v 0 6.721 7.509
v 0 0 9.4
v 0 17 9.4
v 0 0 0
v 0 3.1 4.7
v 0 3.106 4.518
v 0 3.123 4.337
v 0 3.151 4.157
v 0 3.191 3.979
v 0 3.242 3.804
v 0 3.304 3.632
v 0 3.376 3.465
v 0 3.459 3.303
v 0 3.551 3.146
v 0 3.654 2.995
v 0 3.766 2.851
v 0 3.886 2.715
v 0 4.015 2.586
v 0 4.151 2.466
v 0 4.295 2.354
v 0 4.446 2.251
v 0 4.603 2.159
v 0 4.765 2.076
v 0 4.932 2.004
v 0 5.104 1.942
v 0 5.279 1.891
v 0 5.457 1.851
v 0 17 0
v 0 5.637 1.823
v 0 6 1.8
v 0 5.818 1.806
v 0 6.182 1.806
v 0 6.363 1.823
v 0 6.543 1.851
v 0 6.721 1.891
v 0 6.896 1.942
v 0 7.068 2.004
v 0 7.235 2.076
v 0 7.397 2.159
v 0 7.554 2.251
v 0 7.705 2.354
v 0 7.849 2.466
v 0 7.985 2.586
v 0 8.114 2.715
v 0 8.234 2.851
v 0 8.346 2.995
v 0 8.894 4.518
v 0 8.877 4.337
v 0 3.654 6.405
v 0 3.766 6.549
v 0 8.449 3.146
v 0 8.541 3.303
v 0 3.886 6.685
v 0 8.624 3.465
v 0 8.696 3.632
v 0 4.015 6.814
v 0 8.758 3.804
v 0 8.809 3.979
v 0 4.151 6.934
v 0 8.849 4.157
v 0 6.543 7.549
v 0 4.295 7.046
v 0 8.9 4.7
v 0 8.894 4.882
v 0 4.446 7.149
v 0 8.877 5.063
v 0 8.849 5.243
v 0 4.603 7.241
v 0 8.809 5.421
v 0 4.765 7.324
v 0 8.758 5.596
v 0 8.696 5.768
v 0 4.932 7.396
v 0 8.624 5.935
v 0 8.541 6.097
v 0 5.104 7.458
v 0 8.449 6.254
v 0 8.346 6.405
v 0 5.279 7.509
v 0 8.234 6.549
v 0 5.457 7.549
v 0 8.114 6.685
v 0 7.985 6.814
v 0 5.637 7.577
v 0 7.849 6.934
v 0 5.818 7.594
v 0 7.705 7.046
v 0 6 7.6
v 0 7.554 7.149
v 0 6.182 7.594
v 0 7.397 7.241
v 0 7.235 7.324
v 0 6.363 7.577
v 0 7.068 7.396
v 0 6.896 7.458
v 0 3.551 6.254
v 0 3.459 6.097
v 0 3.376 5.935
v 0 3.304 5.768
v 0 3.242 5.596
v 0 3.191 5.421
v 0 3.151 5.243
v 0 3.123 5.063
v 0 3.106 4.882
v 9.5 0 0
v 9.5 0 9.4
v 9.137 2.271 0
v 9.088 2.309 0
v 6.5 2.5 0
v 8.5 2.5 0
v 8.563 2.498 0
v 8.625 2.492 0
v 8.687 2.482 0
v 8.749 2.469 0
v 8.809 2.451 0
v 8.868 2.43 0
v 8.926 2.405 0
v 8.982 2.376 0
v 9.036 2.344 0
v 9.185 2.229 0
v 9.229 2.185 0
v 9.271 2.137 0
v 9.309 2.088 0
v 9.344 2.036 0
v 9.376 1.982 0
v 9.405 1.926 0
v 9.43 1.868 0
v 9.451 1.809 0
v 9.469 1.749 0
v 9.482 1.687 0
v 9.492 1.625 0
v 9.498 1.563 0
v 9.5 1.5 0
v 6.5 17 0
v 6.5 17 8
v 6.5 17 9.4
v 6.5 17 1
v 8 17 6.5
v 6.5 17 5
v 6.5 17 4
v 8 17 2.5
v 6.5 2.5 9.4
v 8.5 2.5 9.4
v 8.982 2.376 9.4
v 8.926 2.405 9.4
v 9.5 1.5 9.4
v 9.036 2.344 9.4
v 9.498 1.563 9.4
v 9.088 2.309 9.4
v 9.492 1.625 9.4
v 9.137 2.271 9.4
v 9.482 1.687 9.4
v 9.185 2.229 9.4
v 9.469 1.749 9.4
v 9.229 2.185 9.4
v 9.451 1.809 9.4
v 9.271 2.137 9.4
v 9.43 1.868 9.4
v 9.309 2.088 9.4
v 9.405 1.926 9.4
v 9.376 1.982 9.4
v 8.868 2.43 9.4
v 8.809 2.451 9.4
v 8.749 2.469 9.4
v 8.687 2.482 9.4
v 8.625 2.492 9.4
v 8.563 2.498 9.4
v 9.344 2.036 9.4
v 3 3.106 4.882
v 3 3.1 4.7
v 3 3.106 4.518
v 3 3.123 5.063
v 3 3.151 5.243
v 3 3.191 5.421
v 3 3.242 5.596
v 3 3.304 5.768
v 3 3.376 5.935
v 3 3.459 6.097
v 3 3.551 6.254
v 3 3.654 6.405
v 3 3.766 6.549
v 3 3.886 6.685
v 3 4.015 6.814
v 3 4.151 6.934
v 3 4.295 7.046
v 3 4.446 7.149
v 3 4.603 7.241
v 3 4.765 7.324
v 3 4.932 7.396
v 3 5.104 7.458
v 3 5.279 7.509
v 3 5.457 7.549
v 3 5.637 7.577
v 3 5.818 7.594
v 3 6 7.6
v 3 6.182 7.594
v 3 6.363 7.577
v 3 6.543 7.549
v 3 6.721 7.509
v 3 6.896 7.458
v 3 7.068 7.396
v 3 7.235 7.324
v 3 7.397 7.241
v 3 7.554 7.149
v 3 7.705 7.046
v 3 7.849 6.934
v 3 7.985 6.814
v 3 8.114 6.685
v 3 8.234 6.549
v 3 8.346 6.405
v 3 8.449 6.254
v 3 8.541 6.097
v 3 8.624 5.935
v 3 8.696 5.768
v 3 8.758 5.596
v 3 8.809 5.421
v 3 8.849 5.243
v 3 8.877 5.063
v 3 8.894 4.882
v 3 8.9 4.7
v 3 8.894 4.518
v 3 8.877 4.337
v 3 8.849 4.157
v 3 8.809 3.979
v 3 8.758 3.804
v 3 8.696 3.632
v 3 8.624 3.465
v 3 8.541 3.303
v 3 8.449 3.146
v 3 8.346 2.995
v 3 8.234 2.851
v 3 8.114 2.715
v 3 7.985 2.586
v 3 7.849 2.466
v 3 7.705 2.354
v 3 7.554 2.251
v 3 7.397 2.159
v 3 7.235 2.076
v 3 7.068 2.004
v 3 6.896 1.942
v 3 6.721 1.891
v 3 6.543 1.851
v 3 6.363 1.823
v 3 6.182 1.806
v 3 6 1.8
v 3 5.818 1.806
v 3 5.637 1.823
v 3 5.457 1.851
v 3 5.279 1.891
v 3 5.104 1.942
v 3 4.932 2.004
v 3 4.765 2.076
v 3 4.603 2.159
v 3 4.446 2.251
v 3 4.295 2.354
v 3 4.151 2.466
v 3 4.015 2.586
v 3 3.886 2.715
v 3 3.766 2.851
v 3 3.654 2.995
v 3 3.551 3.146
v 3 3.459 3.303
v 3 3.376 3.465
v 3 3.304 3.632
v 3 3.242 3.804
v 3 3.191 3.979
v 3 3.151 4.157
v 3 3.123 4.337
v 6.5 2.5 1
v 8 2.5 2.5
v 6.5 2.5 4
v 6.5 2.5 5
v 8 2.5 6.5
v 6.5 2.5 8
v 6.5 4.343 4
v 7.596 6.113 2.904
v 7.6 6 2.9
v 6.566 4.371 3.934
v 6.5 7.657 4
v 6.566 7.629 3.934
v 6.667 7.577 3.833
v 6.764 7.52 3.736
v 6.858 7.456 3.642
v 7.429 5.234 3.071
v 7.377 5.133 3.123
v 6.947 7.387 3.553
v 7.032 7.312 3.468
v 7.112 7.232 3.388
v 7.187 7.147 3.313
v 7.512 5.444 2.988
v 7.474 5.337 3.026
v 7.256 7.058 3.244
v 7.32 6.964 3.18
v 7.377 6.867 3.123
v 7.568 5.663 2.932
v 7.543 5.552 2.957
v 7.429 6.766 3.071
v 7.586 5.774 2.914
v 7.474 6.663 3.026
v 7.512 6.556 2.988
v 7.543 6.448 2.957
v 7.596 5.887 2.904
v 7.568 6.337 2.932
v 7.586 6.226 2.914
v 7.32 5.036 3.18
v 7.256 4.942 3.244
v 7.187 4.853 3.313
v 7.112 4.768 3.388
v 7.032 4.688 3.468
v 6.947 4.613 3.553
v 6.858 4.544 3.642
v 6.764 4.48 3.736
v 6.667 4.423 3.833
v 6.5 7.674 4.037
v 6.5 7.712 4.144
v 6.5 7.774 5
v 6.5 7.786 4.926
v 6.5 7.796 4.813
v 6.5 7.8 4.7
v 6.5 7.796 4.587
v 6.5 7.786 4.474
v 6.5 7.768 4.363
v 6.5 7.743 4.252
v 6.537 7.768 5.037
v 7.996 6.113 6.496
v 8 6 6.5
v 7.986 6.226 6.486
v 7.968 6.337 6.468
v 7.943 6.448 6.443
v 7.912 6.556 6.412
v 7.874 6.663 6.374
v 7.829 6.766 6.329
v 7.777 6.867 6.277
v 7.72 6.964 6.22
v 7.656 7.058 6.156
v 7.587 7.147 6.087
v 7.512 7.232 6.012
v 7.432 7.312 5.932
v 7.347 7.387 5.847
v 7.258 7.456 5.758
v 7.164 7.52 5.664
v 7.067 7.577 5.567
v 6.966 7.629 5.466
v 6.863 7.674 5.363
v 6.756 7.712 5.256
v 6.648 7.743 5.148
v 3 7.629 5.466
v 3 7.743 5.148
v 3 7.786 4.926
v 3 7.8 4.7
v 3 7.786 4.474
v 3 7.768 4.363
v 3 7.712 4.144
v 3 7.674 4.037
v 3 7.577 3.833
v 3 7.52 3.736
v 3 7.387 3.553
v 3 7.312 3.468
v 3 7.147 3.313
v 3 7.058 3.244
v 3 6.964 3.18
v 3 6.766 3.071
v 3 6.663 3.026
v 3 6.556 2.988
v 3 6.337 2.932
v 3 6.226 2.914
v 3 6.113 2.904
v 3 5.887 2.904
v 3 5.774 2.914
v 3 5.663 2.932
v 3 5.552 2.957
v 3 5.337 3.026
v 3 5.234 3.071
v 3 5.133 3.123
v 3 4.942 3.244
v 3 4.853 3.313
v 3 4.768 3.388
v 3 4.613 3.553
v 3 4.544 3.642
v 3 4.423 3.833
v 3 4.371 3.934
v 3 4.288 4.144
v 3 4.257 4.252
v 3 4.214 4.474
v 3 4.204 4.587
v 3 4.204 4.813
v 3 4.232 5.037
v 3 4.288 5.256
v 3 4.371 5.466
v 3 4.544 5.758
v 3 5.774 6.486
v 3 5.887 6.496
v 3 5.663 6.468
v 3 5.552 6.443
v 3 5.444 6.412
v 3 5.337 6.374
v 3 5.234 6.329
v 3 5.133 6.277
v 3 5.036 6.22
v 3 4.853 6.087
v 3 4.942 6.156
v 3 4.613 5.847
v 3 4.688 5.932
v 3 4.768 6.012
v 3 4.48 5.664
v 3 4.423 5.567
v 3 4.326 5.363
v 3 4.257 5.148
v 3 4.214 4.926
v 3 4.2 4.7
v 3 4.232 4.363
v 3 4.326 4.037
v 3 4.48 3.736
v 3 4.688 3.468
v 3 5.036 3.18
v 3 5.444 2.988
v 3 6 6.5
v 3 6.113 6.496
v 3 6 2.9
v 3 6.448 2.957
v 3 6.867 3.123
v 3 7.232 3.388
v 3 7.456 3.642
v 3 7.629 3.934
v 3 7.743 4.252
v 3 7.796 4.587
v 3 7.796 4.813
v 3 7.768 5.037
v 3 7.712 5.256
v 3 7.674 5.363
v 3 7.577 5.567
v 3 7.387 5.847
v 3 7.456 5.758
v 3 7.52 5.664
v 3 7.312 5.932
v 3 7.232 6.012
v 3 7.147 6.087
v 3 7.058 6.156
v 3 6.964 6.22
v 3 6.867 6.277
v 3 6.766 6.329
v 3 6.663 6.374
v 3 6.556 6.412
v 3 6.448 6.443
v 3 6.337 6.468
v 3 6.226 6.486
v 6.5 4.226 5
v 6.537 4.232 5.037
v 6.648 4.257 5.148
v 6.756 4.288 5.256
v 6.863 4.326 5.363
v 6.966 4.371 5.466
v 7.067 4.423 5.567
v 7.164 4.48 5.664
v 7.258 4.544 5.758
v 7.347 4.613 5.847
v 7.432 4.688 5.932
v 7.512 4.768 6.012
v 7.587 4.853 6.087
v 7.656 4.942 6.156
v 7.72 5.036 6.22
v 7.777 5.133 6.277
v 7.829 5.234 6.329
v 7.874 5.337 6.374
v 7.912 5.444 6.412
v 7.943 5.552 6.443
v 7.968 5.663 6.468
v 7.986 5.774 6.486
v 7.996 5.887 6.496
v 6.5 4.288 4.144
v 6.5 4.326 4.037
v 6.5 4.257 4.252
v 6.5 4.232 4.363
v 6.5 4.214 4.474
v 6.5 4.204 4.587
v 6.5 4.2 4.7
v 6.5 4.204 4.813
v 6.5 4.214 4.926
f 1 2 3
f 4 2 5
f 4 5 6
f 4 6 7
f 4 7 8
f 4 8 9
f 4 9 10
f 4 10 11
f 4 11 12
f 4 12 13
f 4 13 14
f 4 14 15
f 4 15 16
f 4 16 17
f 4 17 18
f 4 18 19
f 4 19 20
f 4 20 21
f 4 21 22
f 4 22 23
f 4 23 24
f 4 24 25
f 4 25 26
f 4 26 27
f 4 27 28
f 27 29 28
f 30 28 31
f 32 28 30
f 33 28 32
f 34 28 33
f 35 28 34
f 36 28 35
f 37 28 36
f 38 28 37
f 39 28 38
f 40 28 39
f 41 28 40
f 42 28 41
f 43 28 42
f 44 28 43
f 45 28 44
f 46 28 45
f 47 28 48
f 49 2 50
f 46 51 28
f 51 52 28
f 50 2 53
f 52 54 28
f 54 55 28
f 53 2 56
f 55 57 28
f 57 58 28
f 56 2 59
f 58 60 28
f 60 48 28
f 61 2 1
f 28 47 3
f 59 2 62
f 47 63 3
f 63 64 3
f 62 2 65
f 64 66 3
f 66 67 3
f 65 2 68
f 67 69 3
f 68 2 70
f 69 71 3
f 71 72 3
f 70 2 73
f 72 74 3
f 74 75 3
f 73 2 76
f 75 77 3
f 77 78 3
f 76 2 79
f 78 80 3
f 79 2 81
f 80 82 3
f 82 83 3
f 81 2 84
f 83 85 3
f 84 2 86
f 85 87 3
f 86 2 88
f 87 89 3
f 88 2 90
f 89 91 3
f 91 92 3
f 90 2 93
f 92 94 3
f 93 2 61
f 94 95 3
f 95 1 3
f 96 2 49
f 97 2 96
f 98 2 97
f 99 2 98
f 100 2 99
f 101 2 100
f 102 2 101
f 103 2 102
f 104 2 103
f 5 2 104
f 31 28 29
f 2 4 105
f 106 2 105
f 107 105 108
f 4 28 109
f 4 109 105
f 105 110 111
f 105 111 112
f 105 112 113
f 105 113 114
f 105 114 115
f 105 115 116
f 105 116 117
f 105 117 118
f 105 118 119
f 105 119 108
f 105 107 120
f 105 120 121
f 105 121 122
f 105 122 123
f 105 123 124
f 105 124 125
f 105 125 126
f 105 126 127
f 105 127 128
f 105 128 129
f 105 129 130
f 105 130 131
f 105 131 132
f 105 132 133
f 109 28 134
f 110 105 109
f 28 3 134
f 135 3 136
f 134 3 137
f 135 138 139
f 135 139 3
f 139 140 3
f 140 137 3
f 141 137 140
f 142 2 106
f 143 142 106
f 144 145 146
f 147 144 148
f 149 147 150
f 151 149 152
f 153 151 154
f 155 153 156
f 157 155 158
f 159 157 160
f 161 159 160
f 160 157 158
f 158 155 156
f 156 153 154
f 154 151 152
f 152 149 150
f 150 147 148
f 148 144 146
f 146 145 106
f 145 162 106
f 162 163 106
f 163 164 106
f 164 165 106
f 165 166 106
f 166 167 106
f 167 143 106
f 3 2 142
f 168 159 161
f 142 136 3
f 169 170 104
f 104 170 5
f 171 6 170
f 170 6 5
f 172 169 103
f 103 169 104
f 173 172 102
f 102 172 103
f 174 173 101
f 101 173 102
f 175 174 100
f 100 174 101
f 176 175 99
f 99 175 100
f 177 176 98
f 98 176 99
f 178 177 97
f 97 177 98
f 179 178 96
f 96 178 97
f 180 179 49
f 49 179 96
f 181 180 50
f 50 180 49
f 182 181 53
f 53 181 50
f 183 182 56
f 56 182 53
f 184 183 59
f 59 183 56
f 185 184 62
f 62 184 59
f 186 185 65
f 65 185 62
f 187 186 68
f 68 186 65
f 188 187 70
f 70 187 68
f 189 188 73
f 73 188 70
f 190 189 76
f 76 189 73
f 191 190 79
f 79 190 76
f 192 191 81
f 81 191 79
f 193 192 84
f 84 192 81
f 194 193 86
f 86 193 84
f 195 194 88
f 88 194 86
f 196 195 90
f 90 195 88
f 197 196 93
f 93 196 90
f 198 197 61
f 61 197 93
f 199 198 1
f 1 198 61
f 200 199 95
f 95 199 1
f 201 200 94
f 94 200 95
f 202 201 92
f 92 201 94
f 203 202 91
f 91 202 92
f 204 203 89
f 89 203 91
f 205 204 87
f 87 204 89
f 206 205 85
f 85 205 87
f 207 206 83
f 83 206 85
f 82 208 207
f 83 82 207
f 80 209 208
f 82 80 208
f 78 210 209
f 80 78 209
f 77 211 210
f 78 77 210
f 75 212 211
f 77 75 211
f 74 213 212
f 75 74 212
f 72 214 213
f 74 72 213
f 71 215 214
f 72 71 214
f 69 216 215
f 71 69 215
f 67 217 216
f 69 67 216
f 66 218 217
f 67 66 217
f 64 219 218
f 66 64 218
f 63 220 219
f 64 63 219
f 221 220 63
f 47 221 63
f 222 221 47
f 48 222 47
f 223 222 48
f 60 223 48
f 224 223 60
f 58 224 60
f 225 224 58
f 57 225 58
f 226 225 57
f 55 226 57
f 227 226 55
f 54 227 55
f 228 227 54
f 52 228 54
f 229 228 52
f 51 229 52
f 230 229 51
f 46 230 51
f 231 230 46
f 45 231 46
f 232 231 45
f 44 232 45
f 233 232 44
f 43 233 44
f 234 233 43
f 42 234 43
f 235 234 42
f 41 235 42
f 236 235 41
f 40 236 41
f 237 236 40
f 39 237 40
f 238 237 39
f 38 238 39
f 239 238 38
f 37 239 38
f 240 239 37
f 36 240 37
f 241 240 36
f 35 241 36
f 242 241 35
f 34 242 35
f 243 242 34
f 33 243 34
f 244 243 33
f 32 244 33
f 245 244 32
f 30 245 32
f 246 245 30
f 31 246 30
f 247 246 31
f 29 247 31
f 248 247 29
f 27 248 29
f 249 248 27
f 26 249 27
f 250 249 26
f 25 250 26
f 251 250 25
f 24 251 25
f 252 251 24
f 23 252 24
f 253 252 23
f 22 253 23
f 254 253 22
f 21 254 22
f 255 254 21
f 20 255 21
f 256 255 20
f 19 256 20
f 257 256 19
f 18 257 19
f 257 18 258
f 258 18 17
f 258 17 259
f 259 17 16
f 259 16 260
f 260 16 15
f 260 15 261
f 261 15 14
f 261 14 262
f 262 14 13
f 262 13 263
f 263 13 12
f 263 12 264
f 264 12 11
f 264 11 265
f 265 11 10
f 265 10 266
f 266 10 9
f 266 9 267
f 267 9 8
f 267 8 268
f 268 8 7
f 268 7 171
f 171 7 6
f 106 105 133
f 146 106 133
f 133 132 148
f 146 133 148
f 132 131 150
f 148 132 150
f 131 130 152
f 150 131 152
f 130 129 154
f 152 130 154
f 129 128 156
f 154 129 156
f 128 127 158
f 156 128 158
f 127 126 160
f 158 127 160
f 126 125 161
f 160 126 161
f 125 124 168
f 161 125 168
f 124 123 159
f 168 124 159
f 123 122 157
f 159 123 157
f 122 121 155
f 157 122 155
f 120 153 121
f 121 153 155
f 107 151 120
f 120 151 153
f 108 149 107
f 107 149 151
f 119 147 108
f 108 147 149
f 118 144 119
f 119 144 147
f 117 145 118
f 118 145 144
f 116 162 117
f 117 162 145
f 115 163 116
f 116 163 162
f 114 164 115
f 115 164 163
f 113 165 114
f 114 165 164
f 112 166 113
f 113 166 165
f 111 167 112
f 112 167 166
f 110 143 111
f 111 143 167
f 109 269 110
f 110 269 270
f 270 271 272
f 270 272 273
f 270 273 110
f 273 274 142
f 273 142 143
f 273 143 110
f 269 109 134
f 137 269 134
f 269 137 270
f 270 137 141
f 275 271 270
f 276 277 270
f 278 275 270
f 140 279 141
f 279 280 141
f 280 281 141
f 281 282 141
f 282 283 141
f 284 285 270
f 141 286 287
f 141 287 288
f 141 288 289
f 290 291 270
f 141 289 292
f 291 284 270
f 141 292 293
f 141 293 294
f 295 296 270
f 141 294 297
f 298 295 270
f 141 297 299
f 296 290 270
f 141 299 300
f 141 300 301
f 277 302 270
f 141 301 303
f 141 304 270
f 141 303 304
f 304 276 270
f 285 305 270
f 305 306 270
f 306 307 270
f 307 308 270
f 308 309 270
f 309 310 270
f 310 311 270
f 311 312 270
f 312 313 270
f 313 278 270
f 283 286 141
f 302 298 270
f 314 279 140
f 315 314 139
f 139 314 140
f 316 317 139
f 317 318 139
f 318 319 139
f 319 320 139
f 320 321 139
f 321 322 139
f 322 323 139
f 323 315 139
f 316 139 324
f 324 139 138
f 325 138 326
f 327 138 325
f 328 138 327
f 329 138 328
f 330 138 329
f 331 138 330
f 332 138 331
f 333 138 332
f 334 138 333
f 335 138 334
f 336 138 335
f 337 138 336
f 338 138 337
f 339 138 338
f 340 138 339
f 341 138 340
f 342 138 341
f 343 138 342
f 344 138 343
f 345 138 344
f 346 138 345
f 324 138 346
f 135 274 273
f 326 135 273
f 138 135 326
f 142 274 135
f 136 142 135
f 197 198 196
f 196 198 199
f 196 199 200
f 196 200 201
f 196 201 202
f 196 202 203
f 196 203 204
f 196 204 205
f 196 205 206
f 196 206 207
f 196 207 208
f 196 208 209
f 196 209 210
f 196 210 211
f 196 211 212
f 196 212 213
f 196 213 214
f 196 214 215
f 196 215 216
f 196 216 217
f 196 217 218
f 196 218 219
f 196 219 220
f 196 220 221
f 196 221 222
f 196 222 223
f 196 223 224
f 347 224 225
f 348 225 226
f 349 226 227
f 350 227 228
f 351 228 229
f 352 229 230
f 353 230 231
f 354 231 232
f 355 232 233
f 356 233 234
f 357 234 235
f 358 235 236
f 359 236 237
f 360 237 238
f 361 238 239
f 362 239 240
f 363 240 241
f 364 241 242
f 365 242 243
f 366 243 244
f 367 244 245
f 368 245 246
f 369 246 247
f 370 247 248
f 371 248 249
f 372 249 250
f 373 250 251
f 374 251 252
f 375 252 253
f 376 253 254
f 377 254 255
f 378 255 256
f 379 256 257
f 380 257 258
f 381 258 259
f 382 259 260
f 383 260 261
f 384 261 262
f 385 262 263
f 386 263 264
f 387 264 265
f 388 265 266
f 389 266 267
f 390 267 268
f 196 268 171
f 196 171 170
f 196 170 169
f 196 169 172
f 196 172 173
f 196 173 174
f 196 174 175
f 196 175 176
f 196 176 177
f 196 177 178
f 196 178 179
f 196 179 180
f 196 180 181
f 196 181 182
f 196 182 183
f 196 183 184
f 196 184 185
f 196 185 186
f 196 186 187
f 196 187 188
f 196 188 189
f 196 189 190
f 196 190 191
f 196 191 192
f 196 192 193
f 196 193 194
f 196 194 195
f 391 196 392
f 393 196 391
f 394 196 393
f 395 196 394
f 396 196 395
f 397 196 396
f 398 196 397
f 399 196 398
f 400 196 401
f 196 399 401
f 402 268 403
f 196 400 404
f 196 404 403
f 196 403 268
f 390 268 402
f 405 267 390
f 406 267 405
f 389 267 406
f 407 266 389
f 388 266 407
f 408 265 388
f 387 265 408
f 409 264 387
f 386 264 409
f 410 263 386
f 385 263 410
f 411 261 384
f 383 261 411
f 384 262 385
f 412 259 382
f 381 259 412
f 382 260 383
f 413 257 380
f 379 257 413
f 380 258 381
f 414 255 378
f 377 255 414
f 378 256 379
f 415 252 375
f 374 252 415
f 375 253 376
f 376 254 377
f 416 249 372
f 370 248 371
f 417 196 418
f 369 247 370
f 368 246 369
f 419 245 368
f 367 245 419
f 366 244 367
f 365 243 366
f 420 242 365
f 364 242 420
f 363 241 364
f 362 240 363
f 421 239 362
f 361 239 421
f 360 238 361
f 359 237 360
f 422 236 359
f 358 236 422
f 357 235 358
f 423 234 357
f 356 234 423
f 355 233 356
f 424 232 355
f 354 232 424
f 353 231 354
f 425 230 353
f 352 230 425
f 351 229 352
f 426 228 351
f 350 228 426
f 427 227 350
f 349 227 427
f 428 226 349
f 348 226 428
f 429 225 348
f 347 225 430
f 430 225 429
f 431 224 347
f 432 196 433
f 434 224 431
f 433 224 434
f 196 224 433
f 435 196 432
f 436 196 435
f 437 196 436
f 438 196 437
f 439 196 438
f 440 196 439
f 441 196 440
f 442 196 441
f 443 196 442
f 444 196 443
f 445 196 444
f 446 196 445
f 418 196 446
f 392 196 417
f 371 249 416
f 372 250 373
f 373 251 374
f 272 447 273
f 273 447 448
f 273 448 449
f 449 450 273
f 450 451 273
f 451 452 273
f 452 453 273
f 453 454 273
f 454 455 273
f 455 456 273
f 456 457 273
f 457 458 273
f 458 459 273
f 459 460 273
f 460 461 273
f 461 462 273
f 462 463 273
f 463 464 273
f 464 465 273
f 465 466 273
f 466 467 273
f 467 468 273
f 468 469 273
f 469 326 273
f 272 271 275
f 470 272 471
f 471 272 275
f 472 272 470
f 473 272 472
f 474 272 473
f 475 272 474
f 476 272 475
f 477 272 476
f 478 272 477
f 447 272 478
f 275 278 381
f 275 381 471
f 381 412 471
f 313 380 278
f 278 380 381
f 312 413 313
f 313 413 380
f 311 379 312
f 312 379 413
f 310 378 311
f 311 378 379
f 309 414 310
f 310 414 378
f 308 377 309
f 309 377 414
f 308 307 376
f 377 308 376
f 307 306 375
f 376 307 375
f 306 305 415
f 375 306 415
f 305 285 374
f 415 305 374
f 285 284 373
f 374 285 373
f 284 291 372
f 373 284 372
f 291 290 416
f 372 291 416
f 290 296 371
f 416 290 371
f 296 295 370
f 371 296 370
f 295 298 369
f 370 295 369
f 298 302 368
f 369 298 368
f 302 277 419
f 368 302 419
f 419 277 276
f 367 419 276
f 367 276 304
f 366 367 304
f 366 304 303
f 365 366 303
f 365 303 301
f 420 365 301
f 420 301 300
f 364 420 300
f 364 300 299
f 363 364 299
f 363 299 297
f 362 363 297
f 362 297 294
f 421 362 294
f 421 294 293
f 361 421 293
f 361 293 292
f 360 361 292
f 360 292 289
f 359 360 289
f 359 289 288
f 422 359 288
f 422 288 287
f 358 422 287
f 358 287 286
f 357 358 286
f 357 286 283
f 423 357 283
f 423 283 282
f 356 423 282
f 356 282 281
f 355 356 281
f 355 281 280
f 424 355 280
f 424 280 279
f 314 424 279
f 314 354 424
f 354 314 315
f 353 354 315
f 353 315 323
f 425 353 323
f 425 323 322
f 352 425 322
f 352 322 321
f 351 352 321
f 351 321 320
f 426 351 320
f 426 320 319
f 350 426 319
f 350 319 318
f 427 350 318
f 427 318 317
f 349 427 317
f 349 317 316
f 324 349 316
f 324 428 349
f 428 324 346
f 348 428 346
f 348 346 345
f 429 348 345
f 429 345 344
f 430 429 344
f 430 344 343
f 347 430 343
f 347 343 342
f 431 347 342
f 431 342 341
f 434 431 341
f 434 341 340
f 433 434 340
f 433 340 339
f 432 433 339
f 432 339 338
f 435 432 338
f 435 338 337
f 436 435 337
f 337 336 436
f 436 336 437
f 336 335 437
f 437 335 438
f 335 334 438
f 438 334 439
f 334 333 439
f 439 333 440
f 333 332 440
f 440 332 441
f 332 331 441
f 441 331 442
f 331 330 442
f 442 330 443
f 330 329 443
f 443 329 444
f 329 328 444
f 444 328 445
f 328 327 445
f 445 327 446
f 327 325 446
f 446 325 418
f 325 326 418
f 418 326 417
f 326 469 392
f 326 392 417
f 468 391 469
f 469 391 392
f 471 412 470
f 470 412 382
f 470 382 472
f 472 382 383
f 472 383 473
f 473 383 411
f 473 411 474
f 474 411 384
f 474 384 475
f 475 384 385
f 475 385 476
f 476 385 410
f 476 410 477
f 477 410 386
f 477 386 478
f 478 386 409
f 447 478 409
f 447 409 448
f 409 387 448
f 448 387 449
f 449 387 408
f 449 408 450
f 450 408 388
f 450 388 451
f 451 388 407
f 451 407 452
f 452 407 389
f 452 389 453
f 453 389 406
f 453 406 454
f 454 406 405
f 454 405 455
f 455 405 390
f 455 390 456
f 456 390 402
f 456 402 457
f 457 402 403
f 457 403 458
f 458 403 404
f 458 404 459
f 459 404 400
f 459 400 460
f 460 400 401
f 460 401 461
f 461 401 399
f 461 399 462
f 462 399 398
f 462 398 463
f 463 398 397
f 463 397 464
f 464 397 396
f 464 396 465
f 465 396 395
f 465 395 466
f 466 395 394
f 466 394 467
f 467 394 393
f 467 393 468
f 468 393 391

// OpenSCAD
// Created from Code_Xcarriage_B.stl
// https://github.com/Mecan0/Code
// By J.Rodigo (www.jra.so)
// Licence Creative commons atribution & share alike.

// Pieza y las operaciones
difference () {
	union() {
		//Cubo base
		translate([0, 0, 0])
		cube([6.5, 17, 9.4]);	
		//Saliente
		translate([6.5, 0, 0])
		cube([3, 1.5, 9.4]);
		translate([6.5, 1.5, 0])
		cube([2, 1, 9.4]);
		//Redondeo del saliente
		translate([8.5, 1.5, 0])
		cylinder(h = 9.4, r = 1, $fn=100);
		//Muescas
		translate([8, 2.5, 2.5])
		rotate( -135, [0, 1, 0])
		cube([3, 14.5, 3]);
		translate([8, 2.5, 6.5])
		rotate( -135, [0, 1, 0])
		cube([3, 14.5, 3]);
}
	union() {
		//Taladro pequeño
		translate([-1, 6, 4.7])
		rotate( 90, [0, 1, 0])
		cylinder(h = 10, r = 1.8, $fn=100);
		//Taladro grande
		translate([-1, 6, 4.7])
		rotate( 90, [0, 1, 0])
		cylinder(h = 4, r = 2.9, $fn=100);
	}	
}
